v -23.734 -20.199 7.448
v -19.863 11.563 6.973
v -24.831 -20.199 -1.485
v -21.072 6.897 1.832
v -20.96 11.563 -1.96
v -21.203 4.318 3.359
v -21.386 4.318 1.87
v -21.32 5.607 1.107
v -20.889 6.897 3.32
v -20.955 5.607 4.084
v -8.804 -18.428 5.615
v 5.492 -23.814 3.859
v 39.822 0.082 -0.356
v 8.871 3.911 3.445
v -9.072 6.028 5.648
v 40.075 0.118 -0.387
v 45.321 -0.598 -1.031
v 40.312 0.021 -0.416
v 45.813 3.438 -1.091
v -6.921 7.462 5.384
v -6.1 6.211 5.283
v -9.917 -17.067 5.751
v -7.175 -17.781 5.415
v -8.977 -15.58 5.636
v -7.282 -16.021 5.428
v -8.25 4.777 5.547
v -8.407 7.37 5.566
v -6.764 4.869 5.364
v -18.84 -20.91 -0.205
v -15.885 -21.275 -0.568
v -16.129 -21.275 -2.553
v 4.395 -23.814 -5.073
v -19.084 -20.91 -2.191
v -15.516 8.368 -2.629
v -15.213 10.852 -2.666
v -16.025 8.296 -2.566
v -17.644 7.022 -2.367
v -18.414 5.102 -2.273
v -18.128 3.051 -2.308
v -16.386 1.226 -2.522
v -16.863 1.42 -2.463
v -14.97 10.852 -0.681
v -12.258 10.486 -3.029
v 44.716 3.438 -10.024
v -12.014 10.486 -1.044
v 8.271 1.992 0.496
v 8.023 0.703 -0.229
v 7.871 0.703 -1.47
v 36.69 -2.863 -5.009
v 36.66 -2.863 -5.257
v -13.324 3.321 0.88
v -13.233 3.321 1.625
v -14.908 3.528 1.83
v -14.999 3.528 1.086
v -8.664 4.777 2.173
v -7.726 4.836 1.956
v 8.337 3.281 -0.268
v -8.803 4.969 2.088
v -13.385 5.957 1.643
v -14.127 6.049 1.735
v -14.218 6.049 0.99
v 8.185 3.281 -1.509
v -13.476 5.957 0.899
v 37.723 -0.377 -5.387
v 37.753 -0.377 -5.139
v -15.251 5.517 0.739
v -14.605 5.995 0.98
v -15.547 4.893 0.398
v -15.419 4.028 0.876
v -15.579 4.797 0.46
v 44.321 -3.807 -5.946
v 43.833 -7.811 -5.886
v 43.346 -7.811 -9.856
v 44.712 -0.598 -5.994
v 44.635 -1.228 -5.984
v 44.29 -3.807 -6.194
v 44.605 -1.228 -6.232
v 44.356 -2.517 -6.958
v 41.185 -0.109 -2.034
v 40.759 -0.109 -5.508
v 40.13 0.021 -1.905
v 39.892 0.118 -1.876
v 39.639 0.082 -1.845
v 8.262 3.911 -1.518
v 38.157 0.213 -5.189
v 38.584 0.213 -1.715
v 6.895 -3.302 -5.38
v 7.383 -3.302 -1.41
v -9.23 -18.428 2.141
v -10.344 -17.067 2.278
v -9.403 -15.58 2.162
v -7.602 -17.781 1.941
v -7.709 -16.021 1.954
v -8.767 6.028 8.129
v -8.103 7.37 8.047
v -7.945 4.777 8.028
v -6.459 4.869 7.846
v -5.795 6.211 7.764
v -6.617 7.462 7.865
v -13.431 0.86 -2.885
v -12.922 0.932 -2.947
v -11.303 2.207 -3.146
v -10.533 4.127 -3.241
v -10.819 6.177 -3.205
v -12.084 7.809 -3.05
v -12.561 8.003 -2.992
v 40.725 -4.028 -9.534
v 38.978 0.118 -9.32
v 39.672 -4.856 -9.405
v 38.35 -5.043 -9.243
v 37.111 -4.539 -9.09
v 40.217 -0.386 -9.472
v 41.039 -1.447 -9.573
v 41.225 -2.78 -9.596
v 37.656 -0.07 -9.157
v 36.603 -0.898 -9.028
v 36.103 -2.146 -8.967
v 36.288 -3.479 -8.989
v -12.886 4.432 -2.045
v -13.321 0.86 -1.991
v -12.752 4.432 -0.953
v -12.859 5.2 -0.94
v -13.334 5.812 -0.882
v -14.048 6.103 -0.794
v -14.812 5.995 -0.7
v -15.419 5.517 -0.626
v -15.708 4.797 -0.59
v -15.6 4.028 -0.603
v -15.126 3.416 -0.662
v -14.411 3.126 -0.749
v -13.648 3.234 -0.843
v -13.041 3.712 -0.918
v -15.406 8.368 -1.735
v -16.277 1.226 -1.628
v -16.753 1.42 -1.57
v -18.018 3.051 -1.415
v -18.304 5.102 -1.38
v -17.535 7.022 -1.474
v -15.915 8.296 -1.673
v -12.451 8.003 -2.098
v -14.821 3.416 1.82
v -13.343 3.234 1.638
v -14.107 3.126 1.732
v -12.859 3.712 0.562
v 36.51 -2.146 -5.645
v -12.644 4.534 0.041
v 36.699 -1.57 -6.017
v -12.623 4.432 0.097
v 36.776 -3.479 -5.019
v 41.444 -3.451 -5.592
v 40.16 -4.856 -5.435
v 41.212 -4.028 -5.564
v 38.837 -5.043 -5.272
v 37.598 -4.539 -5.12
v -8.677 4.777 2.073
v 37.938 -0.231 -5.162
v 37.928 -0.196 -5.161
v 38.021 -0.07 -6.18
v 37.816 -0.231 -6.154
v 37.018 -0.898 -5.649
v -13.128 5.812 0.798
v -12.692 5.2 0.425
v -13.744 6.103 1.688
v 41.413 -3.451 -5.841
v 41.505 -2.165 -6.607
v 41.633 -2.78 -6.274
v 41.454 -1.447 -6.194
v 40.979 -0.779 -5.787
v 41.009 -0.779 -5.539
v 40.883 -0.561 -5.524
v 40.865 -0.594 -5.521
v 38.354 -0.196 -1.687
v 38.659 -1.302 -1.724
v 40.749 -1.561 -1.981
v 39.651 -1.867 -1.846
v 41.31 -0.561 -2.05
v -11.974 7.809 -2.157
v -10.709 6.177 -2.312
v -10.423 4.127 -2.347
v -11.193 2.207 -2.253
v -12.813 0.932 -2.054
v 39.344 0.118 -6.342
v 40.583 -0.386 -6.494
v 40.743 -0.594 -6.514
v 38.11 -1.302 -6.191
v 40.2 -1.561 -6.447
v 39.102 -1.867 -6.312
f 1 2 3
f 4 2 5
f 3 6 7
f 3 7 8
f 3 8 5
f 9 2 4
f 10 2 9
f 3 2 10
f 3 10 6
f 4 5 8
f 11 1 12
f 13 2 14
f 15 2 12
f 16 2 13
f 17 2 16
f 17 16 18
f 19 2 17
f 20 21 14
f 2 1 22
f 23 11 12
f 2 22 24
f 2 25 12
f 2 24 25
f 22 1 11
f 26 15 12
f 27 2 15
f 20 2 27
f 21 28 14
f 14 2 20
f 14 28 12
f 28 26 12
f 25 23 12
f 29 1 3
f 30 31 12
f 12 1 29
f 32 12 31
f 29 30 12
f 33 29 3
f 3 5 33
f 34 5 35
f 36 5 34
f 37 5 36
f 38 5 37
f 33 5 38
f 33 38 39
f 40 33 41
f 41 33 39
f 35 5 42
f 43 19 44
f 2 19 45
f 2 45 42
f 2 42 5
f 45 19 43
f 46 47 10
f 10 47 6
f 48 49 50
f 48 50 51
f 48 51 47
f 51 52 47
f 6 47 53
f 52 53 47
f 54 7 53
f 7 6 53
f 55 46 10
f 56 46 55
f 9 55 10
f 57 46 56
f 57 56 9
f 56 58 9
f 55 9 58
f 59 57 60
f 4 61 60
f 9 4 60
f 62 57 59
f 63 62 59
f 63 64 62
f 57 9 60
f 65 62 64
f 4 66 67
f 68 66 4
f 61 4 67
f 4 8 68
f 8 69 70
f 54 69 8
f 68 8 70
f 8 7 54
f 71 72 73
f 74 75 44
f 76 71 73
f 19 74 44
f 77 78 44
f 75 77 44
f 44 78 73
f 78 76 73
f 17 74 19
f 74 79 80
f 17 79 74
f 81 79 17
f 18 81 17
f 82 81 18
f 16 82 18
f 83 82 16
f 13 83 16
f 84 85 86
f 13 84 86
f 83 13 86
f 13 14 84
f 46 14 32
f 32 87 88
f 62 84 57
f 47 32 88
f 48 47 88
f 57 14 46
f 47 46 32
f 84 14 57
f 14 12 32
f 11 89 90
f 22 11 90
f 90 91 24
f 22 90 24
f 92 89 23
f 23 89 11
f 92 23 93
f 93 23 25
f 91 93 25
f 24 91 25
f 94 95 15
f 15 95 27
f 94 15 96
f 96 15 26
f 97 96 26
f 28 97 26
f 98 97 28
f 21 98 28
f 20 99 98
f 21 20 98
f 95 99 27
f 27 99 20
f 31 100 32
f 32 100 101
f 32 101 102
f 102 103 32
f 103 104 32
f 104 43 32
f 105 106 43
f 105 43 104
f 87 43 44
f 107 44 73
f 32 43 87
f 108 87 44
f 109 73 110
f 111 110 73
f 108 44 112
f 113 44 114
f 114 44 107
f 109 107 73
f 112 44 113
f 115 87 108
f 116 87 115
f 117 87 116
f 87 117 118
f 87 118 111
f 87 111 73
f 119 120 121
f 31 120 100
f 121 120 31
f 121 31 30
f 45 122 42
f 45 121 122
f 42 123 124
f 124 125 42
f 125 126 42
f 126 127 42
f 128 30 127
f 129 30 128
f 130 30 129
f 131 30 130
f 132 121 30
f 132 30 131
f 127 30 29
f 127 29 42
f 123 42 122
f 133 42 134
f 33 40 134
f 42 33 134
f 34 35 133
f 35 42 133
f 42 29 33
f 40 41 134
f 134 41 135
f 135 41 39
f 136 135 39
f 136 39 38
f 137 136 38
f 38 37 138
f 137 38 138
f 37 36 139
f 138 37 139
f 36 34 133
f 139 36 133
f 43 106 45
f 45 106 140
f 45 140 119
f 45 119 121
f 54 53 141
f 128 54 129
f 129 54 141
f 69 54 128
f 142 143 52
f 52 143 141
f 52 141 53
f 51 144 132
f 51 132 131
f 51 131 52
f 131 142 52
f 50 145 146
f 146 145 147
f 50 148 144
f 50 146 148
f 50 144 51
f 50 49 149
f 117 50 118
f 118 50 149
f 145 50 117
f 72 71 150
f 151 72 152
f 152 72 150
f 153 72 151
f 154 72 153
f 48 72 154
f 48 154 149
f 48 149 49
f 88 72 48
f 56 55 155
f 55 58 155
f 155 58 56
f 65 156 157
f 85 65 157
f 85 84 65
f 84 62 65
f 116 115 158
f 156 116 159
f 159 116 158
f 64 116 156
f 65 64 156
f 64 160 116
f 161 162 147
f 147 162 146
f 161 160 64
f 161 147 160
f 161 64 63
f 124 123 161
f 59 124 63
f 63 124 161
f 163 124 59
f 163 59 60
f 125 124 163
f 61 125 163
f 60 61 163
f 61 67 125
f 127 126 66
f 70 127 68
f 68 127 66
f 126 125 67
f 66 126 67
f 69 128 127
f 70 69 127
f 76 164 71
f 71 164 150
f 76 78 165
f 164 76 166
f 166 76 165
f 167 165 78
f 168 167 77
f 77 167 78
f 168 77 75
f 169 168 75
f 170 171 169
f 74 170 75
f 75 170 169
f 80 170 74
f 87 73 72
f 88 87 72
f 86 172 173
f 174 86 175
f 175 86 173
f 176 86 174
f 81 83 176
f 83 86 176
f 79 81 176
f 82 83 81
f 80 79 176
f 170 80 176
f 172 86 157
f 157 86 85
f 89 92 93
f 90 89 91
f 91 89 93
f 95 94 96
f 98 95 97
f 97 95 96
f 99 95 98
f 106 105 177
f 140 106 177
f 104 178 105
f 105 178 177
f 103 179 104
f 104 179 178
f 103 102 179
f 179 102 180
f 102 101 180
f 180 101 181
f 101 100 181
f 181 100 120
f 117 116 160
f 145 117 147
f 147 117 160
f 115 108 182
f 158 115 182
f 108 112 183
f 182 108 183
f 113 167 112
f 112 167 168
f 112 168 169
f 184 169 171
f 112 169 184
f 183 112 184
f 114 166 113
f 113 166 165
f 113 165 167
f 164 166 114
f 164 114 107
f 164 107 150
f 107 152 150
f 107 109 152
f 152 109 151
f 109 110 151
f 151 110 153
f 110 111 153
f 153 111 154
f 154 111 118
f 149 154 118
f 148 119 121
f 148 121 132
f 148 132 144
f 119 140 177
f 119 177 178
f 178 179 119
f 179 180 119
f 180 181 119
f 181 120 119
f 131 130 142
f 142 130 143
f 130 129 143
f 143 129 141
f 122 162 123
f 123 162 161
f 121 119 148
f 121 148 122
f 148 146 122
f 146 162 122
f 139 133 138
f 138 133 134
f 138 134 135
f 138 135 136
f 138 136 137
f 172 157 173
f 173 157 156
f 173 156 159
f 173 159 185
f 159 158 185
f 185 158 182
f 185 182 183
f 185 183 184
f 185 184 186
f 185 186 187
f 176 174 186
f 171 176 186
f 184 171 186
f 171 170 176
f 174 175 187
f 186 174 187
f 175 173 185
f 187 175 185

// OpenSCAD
//
// Shapes to subtract
// 

// height in design space (thickness Z in printspace) reduced 12 -> 9
// wire hole reduced from r=1.5 to 1.3mm

nsp = 1.5; // pilot hole for #6 screw
nsh = 4;  // connection screw head recess
hradius = 1.3;

module hole(rad, hg) {
		rotate([0,0,0])
			cylinder(r=rad, h=hg,center=true);
}

module cavity(len,wid,hgt,t,gauge) {
//corner
	translate([len/3,1+wid/2,-1]) cube([len/2,2*wid/3,hgt+4],true);
//slot
	translate([len/3,(wid/5)-2,-2]) cube([len/2,wid/3,2+hgt/3],true);
//tube hole
	  translate([(len/2)-10,t/2-1,-hgt])
      rotate([0,0,90]) 
        cylinder(r=t/2,h=2*hgt,$fn=12);
//wire hole
      translate([-70,1,0])
       rotate([0,90,0]) 
        cylinder(r=gauge/2, h=3*len,$fn=6);
// connection screw recessed head
	  translate([36-len/2,t/2-1.5,(2*hgt)/5])
      rotate([0,0,90]) 
        cylinder(r=nsh,h=3+hgt,$fn=12);
// connection screw pilot hole
	  translate([36-len/2,t/2-1.5,0])
      rotate([0,0,90]) 
        cylinder(r=nsp,h=3+hgt,$fn=12);
// electrical wire cavity
		  translate([36-len/2,t/2+8,1+hgt/3])
      rotate([0,0,90]) 
       cube([wid+2,3,3],true);
}
	// MOUNTING Holes
	module mholes(ht) {
	 translate([114.26,0,-3])
	   hole(nsp, ht);
// 	 translate([112,23,-3])
// 	   hole(nsp, ht);

//   translate([98.61, 0, -3])
//	   hole( hradius, thickplus);
//   translate([96.62, 19.23, -3])
//	   hole( nsp, ht);

//   translate([80.7, 15.85, -3])
//	   hole( nsp, ht);
   }


module compress(len,wid,hgt,t,gauge) {


   difference() {
		translate([12,11,0]) cube([len-(len/3),wid,hgt],true);
		cavity(len,wid,hgt,t,gauge);
	}


	  translate([(len/2)-10,-0.5,-hgt/3])
      rotate([0,0,90]) 
        cylinder(r=gauge/2,h=hgt/2,$fn=8);

}

module piece() {
alpha = 7;    
translate([105,10,-1])
     rotate([0,0,180-alpha/2])
 	     translate([112,23,-3])
			cylinder(r=1.5, h=6,center=true,$fn=6);

       
difference() {
translate([0,-4,0])
  rotate([0,0,alpha])
    compress(100,32,9,5.2,3);

//    translate([100,0,-1])
    translate([105,10,-1])
     rotate([0,0,180-alpha/2])
       mholes(6);
}
}
rotate([180,7,0]) 
    piece();
